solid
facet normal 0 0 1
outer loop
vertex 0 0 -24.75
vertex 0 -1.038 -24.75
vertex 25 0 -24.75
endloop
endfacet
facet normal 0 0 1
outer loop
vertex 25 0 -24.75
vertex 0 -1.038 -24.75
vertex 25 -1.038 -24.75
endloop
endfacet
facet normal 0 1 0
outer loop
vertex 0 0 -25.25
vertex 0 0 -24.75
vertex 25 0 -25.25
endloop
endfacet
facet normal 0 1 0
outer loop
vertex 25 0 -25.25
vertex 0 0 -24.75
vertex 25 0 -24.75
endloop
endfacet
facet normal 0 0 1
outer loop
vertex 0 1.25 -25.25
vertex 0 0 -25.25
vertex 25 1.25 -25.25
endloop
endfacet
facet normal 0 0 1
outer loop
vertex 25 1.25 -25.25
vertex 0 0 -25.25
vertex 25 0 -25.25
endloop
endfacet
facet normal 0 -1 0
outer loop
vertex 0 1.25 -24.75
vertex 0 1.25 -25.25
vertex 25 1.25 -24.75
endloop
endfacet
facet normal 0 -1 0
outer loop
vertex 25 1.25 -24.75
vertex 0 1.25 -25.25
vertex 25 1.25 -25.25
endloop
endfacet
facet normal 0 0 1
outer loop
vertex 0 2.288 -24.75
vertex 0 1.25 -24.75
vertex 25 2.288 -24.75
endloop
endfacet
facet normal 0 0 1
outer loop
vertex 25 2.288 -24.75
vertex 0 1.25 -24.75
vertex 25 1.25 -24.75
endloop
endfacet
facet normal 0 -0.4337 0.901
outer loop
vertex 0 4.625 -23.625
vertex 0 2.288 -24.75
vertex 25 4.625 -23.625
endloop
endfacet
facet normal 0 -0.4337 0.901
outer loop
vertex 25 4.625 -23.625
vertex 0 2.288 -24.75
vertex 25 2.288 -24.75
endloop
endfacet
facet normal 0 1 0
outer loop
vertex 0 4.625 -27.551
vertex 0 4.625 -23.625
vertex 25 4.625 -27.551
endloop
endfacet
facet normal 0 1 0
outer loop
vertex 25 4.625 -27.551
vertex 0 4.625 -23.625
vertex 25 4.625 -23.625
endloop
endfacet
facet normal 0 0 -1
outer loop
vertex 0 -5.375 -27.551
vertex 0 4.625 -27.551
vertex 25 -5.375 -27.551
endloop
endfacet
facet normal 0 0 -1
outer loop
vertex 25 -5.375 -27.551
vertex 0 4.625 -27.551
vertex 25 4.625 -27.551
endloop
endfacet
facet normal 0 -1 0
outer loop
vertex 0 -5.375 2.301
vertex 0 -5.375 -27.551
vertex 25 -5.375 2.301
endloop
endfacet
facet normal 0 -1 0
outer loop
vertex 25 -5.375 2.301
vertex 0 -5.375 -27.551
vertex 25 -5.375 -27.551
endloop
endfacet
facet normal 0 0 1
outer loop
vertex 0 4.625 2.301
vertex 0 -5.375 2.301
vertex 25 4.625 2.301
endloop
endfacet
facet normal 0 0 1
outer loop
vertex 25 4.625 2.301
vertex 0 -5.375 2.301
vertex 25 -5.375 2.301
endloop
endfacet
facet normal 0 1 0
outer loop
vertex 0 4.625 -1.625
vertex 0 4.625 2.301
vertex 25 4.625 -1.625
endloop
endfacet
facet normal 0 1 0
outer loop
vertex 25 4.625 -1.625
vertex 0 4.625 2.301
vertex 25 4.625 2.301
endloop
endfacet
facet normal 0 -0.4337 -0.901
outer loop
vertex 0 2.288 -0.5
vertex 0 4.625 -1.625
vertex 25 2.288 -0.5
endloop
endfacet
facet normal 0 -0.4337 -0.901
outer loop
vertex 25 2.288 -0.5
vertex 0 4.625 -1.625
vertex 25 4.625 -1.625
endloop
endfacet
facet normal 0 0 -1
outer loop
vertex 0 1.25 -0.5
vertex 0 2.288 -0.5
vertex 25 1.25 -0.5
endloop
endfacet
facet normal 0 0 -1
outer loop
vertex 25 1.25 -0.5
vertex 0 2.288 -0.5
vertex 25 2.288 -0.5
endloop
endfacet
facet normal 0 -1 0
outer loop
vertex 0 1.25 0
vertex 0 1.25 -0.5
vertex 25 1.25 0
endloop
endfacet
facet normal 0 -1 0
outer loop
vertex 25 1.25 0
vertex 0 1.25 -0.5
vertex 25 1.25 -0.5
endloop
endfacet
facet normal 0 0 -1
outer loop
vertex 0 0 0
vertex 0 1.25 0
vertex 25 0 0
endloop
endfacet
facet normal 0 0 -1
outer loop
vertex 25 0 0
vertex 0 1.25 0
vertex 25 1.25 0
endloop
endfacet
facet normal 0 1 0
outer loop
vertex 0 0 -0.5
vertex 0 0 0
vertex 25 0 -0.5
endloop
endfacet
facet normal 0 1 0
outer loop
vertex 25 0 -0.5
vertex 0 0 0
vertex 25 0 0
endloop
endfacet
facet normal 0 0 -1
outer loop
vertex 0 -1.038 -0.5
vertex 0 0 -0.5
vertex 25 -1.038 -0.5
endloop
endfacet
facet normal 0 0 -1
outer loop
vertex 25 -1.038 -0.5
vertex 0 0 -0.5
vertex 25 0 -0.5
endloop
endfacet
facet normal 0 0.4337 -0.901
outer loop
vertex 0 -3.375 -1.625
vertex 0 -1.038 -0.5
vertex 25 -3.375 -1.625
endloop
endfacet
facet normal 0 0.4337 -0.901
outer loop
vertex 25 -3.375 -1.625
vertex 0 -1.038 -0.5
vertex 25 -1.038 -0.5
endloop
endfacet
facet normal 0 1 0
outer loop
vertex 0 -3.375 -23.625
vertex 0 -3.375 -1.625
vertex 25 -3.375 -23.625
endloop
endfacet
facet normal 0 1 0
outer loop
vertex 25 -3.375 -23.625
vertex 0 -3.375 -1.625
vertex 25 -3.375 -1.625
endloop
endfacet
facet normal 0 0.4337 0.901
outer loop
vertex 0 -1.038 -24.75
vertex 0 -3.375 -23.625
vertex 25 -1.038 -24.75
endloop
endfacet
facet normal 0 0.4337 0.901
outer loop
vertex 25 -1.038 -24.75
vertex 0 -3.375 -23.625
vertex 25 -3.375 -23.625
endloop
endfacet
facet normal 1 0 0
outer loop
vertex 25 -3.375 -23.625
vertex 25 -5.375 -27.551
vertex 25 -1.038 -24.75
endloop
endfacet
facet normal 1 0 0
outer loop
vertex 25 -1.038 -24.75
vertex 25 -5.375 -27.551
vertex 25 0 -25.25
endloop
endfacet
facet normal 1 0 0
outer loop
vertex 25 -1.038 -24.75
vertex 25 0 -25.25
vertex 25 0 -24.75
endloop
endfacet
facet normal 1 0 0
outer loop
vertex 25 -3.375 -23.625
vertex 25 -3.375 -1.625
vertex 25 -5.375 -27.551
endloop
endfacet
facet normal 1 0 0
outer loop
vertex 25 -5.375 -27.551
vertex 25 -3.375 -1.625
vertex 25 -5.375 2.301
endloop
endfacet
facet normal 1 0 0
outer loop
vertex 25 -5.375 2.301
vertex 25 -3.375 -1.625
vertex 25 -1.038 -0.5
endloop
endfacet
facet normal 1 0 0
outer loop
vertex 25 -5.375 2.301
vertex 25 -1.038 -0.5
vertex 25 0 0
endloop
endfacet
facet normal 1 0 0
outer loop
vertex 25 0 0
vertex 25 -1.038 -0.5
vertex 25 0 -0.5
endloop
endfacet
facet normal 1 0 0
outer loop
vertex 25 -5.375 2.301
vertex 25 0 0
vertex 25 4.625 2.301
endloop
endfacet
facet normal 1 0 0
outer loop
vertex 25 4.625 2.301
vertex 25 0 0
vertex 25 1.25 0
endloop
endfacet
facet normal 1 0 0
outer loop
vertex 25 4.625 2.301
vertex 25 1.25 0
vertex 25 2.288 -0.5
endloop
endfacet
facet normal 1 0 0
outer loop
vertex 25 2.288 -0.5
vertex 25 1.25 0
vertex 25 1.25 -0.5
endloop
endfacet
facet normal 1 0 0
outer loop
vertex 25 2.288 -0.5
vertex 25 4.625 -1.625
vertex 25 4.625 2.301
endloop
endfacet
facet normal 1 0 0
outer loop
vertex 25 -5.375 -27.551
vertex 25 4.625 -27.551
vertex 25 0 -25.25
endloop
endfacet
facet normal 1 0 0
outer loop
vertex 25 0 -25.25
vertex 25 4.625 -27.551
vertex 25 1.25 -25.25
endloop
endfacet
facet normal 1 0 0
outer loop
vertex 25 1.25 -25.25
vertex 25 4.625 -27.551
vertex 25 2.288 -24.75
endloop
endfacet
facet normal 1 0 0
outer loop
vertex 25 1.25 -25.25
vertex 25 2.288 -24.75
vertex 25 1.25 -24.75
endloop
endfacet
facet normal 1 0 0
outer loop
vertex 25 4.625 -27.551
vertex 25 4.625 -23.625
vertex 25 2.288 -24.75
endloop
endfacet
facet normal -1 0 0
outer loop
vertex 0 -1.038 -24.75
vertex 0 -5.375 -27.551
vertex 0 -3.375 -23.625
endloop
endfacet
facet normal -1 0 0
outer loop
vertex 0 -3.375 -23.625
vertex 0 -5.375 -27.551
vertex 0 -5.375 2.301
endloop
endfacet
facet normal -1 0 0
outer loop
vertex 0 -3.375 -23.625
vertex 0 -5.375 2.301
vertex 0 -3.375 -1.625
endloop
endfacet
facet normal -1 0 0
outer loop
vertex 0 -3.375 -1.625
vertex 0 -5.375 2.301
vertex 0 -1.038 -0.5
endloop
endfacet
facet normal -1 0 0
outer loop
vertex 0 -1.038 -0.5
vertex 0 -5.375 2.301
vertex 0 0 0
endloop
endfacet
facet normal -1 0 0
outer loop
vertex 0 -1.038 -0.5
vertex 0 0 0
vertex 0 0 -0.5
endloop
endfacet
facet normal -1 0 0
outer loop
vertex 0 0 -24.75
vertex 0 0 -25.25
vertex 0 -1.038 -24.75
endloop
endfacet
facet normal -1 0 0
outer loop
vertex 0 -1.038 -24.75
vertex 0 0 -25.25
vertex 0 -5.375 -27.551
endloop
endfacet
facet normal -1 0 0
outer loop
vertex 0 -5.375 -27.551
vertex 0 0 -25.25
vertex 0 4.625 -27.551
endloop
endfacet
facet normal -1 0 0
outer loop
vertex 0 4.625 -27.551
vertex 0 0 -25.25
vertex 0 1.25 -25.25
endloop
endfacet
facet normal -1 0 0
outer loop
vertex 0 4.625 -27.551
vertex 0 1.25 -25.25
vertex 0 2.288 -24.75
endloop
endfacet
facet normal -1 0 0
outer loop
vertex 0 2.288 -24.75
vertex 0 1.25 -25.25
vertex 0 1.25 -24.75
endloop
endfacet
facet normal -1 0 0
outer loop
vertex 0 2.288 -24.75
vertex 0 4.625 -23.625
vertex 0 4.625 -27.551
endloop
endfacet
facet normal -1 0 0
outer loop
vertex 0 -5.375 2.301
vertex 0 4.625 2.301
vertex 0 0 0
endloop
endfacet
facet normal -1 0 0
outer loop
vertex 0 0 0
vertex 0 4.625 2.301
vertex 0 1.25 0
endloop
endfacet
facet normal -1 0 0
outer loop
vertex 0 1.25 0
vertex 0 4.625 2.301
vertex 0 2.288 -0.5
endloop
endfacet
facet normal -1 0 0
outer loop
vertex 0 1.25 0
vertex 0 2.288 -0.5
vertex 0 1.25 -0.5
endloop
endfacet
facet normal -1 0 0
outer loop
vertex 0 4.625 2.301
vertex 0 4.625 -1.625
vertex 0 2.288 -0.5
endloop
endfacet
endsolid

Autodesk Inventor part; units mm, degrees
ref_plane "YZ Plane" through (0, 0, 0) normal (1, 0, 0) x (0, 1, 0)
ref_plane "XZ Plane" through (0, 0, 0) normal (0, 1, 0) x (-1, 0, 0)
ref_plane "XY Plane" through (0, 0, 0) normal (0, 0, 1) x (1, 0, 0)
sketch "Sketch1" plane through (0, 0, 0) normal (1, 0, 0) x (0, 1, 0)
  line L0 (0, 0) -> (1.25, 0)
  line L1 (1.25, 0) -> (1.25, -25.25)
  line L2 (1.25, -25.25) -> (0, -25.25)
  line L3 (0, -25.25) -> (0, 0)
  line L4 (4.625, -1.625) -> (0.625, 0.3009)
  line L5 (0.625, 0.3009) -> (-3.375, -1.625)
  line L6 (-3.375, -23.625) -> (0.625, -25.5509)
  line L7 (0.625, -25.5509) -> (4.625, -23.625)
  line L8 (4.625, 2.3009) -> (-3.375, 2.3009)
  line L9 (-3.375, 2.3009) -> (-3.375, -27.5509)
  line L10 (-3.375, -27.5509) -> (4.625, -27.5509)
  line L11 (4.625, -27.5509) -> (4.625, 2.3009)
  line L12 (-3.375, 2.3009) -> (-5.375, 2.3009)
  line L13 (-5.375, 2.3009) -> (-5.375, -27.5509)
  line L14 (-5.375, -27.5509) -> (-3.375, -27.5509)
  line L15 (-3.375, -27.5509) -> (-3.375, 2.3009)
  line L16 (-1.0385, -0.5) -> (2.2885, -0.5)
  line L17 (-1.0385, -24.75) -> (2.2885, -24.75)
  point P0 (0, -24.75)
  point P1 (0, -0.5)
  point P2 (1.25, -0.5)
  point P3 (1.25, -24.75)
  dimension "d0" = 1.25
  dimension "d1" = 25.25
  dimension "d2" = 0.625
  dimension "d3" = 2
  dimension "d4" = 2
  dimension "d5" = 8
  dimension "d6" = 22
  dimension "d7" = 2
  dimension "d8" = 0.5
  dimension "d9" = 0.5
extrude "Extrusion1" add sketch "Sketch1" along normal blind 25 contours L5 L4 L0 | L5 L9 L8 L11 L4 | L3 L16 L5 | L4 L16 L1 | L3 L6 L17 | L9 L14 L13 L12 | L17 L7 L1 | L6 L7 L11 L10 L9 | L2 L7 L6
equation "\"d2\" = 0.5 * d0"
properties part number "RaspberryPi Camera Slotted Mount"
